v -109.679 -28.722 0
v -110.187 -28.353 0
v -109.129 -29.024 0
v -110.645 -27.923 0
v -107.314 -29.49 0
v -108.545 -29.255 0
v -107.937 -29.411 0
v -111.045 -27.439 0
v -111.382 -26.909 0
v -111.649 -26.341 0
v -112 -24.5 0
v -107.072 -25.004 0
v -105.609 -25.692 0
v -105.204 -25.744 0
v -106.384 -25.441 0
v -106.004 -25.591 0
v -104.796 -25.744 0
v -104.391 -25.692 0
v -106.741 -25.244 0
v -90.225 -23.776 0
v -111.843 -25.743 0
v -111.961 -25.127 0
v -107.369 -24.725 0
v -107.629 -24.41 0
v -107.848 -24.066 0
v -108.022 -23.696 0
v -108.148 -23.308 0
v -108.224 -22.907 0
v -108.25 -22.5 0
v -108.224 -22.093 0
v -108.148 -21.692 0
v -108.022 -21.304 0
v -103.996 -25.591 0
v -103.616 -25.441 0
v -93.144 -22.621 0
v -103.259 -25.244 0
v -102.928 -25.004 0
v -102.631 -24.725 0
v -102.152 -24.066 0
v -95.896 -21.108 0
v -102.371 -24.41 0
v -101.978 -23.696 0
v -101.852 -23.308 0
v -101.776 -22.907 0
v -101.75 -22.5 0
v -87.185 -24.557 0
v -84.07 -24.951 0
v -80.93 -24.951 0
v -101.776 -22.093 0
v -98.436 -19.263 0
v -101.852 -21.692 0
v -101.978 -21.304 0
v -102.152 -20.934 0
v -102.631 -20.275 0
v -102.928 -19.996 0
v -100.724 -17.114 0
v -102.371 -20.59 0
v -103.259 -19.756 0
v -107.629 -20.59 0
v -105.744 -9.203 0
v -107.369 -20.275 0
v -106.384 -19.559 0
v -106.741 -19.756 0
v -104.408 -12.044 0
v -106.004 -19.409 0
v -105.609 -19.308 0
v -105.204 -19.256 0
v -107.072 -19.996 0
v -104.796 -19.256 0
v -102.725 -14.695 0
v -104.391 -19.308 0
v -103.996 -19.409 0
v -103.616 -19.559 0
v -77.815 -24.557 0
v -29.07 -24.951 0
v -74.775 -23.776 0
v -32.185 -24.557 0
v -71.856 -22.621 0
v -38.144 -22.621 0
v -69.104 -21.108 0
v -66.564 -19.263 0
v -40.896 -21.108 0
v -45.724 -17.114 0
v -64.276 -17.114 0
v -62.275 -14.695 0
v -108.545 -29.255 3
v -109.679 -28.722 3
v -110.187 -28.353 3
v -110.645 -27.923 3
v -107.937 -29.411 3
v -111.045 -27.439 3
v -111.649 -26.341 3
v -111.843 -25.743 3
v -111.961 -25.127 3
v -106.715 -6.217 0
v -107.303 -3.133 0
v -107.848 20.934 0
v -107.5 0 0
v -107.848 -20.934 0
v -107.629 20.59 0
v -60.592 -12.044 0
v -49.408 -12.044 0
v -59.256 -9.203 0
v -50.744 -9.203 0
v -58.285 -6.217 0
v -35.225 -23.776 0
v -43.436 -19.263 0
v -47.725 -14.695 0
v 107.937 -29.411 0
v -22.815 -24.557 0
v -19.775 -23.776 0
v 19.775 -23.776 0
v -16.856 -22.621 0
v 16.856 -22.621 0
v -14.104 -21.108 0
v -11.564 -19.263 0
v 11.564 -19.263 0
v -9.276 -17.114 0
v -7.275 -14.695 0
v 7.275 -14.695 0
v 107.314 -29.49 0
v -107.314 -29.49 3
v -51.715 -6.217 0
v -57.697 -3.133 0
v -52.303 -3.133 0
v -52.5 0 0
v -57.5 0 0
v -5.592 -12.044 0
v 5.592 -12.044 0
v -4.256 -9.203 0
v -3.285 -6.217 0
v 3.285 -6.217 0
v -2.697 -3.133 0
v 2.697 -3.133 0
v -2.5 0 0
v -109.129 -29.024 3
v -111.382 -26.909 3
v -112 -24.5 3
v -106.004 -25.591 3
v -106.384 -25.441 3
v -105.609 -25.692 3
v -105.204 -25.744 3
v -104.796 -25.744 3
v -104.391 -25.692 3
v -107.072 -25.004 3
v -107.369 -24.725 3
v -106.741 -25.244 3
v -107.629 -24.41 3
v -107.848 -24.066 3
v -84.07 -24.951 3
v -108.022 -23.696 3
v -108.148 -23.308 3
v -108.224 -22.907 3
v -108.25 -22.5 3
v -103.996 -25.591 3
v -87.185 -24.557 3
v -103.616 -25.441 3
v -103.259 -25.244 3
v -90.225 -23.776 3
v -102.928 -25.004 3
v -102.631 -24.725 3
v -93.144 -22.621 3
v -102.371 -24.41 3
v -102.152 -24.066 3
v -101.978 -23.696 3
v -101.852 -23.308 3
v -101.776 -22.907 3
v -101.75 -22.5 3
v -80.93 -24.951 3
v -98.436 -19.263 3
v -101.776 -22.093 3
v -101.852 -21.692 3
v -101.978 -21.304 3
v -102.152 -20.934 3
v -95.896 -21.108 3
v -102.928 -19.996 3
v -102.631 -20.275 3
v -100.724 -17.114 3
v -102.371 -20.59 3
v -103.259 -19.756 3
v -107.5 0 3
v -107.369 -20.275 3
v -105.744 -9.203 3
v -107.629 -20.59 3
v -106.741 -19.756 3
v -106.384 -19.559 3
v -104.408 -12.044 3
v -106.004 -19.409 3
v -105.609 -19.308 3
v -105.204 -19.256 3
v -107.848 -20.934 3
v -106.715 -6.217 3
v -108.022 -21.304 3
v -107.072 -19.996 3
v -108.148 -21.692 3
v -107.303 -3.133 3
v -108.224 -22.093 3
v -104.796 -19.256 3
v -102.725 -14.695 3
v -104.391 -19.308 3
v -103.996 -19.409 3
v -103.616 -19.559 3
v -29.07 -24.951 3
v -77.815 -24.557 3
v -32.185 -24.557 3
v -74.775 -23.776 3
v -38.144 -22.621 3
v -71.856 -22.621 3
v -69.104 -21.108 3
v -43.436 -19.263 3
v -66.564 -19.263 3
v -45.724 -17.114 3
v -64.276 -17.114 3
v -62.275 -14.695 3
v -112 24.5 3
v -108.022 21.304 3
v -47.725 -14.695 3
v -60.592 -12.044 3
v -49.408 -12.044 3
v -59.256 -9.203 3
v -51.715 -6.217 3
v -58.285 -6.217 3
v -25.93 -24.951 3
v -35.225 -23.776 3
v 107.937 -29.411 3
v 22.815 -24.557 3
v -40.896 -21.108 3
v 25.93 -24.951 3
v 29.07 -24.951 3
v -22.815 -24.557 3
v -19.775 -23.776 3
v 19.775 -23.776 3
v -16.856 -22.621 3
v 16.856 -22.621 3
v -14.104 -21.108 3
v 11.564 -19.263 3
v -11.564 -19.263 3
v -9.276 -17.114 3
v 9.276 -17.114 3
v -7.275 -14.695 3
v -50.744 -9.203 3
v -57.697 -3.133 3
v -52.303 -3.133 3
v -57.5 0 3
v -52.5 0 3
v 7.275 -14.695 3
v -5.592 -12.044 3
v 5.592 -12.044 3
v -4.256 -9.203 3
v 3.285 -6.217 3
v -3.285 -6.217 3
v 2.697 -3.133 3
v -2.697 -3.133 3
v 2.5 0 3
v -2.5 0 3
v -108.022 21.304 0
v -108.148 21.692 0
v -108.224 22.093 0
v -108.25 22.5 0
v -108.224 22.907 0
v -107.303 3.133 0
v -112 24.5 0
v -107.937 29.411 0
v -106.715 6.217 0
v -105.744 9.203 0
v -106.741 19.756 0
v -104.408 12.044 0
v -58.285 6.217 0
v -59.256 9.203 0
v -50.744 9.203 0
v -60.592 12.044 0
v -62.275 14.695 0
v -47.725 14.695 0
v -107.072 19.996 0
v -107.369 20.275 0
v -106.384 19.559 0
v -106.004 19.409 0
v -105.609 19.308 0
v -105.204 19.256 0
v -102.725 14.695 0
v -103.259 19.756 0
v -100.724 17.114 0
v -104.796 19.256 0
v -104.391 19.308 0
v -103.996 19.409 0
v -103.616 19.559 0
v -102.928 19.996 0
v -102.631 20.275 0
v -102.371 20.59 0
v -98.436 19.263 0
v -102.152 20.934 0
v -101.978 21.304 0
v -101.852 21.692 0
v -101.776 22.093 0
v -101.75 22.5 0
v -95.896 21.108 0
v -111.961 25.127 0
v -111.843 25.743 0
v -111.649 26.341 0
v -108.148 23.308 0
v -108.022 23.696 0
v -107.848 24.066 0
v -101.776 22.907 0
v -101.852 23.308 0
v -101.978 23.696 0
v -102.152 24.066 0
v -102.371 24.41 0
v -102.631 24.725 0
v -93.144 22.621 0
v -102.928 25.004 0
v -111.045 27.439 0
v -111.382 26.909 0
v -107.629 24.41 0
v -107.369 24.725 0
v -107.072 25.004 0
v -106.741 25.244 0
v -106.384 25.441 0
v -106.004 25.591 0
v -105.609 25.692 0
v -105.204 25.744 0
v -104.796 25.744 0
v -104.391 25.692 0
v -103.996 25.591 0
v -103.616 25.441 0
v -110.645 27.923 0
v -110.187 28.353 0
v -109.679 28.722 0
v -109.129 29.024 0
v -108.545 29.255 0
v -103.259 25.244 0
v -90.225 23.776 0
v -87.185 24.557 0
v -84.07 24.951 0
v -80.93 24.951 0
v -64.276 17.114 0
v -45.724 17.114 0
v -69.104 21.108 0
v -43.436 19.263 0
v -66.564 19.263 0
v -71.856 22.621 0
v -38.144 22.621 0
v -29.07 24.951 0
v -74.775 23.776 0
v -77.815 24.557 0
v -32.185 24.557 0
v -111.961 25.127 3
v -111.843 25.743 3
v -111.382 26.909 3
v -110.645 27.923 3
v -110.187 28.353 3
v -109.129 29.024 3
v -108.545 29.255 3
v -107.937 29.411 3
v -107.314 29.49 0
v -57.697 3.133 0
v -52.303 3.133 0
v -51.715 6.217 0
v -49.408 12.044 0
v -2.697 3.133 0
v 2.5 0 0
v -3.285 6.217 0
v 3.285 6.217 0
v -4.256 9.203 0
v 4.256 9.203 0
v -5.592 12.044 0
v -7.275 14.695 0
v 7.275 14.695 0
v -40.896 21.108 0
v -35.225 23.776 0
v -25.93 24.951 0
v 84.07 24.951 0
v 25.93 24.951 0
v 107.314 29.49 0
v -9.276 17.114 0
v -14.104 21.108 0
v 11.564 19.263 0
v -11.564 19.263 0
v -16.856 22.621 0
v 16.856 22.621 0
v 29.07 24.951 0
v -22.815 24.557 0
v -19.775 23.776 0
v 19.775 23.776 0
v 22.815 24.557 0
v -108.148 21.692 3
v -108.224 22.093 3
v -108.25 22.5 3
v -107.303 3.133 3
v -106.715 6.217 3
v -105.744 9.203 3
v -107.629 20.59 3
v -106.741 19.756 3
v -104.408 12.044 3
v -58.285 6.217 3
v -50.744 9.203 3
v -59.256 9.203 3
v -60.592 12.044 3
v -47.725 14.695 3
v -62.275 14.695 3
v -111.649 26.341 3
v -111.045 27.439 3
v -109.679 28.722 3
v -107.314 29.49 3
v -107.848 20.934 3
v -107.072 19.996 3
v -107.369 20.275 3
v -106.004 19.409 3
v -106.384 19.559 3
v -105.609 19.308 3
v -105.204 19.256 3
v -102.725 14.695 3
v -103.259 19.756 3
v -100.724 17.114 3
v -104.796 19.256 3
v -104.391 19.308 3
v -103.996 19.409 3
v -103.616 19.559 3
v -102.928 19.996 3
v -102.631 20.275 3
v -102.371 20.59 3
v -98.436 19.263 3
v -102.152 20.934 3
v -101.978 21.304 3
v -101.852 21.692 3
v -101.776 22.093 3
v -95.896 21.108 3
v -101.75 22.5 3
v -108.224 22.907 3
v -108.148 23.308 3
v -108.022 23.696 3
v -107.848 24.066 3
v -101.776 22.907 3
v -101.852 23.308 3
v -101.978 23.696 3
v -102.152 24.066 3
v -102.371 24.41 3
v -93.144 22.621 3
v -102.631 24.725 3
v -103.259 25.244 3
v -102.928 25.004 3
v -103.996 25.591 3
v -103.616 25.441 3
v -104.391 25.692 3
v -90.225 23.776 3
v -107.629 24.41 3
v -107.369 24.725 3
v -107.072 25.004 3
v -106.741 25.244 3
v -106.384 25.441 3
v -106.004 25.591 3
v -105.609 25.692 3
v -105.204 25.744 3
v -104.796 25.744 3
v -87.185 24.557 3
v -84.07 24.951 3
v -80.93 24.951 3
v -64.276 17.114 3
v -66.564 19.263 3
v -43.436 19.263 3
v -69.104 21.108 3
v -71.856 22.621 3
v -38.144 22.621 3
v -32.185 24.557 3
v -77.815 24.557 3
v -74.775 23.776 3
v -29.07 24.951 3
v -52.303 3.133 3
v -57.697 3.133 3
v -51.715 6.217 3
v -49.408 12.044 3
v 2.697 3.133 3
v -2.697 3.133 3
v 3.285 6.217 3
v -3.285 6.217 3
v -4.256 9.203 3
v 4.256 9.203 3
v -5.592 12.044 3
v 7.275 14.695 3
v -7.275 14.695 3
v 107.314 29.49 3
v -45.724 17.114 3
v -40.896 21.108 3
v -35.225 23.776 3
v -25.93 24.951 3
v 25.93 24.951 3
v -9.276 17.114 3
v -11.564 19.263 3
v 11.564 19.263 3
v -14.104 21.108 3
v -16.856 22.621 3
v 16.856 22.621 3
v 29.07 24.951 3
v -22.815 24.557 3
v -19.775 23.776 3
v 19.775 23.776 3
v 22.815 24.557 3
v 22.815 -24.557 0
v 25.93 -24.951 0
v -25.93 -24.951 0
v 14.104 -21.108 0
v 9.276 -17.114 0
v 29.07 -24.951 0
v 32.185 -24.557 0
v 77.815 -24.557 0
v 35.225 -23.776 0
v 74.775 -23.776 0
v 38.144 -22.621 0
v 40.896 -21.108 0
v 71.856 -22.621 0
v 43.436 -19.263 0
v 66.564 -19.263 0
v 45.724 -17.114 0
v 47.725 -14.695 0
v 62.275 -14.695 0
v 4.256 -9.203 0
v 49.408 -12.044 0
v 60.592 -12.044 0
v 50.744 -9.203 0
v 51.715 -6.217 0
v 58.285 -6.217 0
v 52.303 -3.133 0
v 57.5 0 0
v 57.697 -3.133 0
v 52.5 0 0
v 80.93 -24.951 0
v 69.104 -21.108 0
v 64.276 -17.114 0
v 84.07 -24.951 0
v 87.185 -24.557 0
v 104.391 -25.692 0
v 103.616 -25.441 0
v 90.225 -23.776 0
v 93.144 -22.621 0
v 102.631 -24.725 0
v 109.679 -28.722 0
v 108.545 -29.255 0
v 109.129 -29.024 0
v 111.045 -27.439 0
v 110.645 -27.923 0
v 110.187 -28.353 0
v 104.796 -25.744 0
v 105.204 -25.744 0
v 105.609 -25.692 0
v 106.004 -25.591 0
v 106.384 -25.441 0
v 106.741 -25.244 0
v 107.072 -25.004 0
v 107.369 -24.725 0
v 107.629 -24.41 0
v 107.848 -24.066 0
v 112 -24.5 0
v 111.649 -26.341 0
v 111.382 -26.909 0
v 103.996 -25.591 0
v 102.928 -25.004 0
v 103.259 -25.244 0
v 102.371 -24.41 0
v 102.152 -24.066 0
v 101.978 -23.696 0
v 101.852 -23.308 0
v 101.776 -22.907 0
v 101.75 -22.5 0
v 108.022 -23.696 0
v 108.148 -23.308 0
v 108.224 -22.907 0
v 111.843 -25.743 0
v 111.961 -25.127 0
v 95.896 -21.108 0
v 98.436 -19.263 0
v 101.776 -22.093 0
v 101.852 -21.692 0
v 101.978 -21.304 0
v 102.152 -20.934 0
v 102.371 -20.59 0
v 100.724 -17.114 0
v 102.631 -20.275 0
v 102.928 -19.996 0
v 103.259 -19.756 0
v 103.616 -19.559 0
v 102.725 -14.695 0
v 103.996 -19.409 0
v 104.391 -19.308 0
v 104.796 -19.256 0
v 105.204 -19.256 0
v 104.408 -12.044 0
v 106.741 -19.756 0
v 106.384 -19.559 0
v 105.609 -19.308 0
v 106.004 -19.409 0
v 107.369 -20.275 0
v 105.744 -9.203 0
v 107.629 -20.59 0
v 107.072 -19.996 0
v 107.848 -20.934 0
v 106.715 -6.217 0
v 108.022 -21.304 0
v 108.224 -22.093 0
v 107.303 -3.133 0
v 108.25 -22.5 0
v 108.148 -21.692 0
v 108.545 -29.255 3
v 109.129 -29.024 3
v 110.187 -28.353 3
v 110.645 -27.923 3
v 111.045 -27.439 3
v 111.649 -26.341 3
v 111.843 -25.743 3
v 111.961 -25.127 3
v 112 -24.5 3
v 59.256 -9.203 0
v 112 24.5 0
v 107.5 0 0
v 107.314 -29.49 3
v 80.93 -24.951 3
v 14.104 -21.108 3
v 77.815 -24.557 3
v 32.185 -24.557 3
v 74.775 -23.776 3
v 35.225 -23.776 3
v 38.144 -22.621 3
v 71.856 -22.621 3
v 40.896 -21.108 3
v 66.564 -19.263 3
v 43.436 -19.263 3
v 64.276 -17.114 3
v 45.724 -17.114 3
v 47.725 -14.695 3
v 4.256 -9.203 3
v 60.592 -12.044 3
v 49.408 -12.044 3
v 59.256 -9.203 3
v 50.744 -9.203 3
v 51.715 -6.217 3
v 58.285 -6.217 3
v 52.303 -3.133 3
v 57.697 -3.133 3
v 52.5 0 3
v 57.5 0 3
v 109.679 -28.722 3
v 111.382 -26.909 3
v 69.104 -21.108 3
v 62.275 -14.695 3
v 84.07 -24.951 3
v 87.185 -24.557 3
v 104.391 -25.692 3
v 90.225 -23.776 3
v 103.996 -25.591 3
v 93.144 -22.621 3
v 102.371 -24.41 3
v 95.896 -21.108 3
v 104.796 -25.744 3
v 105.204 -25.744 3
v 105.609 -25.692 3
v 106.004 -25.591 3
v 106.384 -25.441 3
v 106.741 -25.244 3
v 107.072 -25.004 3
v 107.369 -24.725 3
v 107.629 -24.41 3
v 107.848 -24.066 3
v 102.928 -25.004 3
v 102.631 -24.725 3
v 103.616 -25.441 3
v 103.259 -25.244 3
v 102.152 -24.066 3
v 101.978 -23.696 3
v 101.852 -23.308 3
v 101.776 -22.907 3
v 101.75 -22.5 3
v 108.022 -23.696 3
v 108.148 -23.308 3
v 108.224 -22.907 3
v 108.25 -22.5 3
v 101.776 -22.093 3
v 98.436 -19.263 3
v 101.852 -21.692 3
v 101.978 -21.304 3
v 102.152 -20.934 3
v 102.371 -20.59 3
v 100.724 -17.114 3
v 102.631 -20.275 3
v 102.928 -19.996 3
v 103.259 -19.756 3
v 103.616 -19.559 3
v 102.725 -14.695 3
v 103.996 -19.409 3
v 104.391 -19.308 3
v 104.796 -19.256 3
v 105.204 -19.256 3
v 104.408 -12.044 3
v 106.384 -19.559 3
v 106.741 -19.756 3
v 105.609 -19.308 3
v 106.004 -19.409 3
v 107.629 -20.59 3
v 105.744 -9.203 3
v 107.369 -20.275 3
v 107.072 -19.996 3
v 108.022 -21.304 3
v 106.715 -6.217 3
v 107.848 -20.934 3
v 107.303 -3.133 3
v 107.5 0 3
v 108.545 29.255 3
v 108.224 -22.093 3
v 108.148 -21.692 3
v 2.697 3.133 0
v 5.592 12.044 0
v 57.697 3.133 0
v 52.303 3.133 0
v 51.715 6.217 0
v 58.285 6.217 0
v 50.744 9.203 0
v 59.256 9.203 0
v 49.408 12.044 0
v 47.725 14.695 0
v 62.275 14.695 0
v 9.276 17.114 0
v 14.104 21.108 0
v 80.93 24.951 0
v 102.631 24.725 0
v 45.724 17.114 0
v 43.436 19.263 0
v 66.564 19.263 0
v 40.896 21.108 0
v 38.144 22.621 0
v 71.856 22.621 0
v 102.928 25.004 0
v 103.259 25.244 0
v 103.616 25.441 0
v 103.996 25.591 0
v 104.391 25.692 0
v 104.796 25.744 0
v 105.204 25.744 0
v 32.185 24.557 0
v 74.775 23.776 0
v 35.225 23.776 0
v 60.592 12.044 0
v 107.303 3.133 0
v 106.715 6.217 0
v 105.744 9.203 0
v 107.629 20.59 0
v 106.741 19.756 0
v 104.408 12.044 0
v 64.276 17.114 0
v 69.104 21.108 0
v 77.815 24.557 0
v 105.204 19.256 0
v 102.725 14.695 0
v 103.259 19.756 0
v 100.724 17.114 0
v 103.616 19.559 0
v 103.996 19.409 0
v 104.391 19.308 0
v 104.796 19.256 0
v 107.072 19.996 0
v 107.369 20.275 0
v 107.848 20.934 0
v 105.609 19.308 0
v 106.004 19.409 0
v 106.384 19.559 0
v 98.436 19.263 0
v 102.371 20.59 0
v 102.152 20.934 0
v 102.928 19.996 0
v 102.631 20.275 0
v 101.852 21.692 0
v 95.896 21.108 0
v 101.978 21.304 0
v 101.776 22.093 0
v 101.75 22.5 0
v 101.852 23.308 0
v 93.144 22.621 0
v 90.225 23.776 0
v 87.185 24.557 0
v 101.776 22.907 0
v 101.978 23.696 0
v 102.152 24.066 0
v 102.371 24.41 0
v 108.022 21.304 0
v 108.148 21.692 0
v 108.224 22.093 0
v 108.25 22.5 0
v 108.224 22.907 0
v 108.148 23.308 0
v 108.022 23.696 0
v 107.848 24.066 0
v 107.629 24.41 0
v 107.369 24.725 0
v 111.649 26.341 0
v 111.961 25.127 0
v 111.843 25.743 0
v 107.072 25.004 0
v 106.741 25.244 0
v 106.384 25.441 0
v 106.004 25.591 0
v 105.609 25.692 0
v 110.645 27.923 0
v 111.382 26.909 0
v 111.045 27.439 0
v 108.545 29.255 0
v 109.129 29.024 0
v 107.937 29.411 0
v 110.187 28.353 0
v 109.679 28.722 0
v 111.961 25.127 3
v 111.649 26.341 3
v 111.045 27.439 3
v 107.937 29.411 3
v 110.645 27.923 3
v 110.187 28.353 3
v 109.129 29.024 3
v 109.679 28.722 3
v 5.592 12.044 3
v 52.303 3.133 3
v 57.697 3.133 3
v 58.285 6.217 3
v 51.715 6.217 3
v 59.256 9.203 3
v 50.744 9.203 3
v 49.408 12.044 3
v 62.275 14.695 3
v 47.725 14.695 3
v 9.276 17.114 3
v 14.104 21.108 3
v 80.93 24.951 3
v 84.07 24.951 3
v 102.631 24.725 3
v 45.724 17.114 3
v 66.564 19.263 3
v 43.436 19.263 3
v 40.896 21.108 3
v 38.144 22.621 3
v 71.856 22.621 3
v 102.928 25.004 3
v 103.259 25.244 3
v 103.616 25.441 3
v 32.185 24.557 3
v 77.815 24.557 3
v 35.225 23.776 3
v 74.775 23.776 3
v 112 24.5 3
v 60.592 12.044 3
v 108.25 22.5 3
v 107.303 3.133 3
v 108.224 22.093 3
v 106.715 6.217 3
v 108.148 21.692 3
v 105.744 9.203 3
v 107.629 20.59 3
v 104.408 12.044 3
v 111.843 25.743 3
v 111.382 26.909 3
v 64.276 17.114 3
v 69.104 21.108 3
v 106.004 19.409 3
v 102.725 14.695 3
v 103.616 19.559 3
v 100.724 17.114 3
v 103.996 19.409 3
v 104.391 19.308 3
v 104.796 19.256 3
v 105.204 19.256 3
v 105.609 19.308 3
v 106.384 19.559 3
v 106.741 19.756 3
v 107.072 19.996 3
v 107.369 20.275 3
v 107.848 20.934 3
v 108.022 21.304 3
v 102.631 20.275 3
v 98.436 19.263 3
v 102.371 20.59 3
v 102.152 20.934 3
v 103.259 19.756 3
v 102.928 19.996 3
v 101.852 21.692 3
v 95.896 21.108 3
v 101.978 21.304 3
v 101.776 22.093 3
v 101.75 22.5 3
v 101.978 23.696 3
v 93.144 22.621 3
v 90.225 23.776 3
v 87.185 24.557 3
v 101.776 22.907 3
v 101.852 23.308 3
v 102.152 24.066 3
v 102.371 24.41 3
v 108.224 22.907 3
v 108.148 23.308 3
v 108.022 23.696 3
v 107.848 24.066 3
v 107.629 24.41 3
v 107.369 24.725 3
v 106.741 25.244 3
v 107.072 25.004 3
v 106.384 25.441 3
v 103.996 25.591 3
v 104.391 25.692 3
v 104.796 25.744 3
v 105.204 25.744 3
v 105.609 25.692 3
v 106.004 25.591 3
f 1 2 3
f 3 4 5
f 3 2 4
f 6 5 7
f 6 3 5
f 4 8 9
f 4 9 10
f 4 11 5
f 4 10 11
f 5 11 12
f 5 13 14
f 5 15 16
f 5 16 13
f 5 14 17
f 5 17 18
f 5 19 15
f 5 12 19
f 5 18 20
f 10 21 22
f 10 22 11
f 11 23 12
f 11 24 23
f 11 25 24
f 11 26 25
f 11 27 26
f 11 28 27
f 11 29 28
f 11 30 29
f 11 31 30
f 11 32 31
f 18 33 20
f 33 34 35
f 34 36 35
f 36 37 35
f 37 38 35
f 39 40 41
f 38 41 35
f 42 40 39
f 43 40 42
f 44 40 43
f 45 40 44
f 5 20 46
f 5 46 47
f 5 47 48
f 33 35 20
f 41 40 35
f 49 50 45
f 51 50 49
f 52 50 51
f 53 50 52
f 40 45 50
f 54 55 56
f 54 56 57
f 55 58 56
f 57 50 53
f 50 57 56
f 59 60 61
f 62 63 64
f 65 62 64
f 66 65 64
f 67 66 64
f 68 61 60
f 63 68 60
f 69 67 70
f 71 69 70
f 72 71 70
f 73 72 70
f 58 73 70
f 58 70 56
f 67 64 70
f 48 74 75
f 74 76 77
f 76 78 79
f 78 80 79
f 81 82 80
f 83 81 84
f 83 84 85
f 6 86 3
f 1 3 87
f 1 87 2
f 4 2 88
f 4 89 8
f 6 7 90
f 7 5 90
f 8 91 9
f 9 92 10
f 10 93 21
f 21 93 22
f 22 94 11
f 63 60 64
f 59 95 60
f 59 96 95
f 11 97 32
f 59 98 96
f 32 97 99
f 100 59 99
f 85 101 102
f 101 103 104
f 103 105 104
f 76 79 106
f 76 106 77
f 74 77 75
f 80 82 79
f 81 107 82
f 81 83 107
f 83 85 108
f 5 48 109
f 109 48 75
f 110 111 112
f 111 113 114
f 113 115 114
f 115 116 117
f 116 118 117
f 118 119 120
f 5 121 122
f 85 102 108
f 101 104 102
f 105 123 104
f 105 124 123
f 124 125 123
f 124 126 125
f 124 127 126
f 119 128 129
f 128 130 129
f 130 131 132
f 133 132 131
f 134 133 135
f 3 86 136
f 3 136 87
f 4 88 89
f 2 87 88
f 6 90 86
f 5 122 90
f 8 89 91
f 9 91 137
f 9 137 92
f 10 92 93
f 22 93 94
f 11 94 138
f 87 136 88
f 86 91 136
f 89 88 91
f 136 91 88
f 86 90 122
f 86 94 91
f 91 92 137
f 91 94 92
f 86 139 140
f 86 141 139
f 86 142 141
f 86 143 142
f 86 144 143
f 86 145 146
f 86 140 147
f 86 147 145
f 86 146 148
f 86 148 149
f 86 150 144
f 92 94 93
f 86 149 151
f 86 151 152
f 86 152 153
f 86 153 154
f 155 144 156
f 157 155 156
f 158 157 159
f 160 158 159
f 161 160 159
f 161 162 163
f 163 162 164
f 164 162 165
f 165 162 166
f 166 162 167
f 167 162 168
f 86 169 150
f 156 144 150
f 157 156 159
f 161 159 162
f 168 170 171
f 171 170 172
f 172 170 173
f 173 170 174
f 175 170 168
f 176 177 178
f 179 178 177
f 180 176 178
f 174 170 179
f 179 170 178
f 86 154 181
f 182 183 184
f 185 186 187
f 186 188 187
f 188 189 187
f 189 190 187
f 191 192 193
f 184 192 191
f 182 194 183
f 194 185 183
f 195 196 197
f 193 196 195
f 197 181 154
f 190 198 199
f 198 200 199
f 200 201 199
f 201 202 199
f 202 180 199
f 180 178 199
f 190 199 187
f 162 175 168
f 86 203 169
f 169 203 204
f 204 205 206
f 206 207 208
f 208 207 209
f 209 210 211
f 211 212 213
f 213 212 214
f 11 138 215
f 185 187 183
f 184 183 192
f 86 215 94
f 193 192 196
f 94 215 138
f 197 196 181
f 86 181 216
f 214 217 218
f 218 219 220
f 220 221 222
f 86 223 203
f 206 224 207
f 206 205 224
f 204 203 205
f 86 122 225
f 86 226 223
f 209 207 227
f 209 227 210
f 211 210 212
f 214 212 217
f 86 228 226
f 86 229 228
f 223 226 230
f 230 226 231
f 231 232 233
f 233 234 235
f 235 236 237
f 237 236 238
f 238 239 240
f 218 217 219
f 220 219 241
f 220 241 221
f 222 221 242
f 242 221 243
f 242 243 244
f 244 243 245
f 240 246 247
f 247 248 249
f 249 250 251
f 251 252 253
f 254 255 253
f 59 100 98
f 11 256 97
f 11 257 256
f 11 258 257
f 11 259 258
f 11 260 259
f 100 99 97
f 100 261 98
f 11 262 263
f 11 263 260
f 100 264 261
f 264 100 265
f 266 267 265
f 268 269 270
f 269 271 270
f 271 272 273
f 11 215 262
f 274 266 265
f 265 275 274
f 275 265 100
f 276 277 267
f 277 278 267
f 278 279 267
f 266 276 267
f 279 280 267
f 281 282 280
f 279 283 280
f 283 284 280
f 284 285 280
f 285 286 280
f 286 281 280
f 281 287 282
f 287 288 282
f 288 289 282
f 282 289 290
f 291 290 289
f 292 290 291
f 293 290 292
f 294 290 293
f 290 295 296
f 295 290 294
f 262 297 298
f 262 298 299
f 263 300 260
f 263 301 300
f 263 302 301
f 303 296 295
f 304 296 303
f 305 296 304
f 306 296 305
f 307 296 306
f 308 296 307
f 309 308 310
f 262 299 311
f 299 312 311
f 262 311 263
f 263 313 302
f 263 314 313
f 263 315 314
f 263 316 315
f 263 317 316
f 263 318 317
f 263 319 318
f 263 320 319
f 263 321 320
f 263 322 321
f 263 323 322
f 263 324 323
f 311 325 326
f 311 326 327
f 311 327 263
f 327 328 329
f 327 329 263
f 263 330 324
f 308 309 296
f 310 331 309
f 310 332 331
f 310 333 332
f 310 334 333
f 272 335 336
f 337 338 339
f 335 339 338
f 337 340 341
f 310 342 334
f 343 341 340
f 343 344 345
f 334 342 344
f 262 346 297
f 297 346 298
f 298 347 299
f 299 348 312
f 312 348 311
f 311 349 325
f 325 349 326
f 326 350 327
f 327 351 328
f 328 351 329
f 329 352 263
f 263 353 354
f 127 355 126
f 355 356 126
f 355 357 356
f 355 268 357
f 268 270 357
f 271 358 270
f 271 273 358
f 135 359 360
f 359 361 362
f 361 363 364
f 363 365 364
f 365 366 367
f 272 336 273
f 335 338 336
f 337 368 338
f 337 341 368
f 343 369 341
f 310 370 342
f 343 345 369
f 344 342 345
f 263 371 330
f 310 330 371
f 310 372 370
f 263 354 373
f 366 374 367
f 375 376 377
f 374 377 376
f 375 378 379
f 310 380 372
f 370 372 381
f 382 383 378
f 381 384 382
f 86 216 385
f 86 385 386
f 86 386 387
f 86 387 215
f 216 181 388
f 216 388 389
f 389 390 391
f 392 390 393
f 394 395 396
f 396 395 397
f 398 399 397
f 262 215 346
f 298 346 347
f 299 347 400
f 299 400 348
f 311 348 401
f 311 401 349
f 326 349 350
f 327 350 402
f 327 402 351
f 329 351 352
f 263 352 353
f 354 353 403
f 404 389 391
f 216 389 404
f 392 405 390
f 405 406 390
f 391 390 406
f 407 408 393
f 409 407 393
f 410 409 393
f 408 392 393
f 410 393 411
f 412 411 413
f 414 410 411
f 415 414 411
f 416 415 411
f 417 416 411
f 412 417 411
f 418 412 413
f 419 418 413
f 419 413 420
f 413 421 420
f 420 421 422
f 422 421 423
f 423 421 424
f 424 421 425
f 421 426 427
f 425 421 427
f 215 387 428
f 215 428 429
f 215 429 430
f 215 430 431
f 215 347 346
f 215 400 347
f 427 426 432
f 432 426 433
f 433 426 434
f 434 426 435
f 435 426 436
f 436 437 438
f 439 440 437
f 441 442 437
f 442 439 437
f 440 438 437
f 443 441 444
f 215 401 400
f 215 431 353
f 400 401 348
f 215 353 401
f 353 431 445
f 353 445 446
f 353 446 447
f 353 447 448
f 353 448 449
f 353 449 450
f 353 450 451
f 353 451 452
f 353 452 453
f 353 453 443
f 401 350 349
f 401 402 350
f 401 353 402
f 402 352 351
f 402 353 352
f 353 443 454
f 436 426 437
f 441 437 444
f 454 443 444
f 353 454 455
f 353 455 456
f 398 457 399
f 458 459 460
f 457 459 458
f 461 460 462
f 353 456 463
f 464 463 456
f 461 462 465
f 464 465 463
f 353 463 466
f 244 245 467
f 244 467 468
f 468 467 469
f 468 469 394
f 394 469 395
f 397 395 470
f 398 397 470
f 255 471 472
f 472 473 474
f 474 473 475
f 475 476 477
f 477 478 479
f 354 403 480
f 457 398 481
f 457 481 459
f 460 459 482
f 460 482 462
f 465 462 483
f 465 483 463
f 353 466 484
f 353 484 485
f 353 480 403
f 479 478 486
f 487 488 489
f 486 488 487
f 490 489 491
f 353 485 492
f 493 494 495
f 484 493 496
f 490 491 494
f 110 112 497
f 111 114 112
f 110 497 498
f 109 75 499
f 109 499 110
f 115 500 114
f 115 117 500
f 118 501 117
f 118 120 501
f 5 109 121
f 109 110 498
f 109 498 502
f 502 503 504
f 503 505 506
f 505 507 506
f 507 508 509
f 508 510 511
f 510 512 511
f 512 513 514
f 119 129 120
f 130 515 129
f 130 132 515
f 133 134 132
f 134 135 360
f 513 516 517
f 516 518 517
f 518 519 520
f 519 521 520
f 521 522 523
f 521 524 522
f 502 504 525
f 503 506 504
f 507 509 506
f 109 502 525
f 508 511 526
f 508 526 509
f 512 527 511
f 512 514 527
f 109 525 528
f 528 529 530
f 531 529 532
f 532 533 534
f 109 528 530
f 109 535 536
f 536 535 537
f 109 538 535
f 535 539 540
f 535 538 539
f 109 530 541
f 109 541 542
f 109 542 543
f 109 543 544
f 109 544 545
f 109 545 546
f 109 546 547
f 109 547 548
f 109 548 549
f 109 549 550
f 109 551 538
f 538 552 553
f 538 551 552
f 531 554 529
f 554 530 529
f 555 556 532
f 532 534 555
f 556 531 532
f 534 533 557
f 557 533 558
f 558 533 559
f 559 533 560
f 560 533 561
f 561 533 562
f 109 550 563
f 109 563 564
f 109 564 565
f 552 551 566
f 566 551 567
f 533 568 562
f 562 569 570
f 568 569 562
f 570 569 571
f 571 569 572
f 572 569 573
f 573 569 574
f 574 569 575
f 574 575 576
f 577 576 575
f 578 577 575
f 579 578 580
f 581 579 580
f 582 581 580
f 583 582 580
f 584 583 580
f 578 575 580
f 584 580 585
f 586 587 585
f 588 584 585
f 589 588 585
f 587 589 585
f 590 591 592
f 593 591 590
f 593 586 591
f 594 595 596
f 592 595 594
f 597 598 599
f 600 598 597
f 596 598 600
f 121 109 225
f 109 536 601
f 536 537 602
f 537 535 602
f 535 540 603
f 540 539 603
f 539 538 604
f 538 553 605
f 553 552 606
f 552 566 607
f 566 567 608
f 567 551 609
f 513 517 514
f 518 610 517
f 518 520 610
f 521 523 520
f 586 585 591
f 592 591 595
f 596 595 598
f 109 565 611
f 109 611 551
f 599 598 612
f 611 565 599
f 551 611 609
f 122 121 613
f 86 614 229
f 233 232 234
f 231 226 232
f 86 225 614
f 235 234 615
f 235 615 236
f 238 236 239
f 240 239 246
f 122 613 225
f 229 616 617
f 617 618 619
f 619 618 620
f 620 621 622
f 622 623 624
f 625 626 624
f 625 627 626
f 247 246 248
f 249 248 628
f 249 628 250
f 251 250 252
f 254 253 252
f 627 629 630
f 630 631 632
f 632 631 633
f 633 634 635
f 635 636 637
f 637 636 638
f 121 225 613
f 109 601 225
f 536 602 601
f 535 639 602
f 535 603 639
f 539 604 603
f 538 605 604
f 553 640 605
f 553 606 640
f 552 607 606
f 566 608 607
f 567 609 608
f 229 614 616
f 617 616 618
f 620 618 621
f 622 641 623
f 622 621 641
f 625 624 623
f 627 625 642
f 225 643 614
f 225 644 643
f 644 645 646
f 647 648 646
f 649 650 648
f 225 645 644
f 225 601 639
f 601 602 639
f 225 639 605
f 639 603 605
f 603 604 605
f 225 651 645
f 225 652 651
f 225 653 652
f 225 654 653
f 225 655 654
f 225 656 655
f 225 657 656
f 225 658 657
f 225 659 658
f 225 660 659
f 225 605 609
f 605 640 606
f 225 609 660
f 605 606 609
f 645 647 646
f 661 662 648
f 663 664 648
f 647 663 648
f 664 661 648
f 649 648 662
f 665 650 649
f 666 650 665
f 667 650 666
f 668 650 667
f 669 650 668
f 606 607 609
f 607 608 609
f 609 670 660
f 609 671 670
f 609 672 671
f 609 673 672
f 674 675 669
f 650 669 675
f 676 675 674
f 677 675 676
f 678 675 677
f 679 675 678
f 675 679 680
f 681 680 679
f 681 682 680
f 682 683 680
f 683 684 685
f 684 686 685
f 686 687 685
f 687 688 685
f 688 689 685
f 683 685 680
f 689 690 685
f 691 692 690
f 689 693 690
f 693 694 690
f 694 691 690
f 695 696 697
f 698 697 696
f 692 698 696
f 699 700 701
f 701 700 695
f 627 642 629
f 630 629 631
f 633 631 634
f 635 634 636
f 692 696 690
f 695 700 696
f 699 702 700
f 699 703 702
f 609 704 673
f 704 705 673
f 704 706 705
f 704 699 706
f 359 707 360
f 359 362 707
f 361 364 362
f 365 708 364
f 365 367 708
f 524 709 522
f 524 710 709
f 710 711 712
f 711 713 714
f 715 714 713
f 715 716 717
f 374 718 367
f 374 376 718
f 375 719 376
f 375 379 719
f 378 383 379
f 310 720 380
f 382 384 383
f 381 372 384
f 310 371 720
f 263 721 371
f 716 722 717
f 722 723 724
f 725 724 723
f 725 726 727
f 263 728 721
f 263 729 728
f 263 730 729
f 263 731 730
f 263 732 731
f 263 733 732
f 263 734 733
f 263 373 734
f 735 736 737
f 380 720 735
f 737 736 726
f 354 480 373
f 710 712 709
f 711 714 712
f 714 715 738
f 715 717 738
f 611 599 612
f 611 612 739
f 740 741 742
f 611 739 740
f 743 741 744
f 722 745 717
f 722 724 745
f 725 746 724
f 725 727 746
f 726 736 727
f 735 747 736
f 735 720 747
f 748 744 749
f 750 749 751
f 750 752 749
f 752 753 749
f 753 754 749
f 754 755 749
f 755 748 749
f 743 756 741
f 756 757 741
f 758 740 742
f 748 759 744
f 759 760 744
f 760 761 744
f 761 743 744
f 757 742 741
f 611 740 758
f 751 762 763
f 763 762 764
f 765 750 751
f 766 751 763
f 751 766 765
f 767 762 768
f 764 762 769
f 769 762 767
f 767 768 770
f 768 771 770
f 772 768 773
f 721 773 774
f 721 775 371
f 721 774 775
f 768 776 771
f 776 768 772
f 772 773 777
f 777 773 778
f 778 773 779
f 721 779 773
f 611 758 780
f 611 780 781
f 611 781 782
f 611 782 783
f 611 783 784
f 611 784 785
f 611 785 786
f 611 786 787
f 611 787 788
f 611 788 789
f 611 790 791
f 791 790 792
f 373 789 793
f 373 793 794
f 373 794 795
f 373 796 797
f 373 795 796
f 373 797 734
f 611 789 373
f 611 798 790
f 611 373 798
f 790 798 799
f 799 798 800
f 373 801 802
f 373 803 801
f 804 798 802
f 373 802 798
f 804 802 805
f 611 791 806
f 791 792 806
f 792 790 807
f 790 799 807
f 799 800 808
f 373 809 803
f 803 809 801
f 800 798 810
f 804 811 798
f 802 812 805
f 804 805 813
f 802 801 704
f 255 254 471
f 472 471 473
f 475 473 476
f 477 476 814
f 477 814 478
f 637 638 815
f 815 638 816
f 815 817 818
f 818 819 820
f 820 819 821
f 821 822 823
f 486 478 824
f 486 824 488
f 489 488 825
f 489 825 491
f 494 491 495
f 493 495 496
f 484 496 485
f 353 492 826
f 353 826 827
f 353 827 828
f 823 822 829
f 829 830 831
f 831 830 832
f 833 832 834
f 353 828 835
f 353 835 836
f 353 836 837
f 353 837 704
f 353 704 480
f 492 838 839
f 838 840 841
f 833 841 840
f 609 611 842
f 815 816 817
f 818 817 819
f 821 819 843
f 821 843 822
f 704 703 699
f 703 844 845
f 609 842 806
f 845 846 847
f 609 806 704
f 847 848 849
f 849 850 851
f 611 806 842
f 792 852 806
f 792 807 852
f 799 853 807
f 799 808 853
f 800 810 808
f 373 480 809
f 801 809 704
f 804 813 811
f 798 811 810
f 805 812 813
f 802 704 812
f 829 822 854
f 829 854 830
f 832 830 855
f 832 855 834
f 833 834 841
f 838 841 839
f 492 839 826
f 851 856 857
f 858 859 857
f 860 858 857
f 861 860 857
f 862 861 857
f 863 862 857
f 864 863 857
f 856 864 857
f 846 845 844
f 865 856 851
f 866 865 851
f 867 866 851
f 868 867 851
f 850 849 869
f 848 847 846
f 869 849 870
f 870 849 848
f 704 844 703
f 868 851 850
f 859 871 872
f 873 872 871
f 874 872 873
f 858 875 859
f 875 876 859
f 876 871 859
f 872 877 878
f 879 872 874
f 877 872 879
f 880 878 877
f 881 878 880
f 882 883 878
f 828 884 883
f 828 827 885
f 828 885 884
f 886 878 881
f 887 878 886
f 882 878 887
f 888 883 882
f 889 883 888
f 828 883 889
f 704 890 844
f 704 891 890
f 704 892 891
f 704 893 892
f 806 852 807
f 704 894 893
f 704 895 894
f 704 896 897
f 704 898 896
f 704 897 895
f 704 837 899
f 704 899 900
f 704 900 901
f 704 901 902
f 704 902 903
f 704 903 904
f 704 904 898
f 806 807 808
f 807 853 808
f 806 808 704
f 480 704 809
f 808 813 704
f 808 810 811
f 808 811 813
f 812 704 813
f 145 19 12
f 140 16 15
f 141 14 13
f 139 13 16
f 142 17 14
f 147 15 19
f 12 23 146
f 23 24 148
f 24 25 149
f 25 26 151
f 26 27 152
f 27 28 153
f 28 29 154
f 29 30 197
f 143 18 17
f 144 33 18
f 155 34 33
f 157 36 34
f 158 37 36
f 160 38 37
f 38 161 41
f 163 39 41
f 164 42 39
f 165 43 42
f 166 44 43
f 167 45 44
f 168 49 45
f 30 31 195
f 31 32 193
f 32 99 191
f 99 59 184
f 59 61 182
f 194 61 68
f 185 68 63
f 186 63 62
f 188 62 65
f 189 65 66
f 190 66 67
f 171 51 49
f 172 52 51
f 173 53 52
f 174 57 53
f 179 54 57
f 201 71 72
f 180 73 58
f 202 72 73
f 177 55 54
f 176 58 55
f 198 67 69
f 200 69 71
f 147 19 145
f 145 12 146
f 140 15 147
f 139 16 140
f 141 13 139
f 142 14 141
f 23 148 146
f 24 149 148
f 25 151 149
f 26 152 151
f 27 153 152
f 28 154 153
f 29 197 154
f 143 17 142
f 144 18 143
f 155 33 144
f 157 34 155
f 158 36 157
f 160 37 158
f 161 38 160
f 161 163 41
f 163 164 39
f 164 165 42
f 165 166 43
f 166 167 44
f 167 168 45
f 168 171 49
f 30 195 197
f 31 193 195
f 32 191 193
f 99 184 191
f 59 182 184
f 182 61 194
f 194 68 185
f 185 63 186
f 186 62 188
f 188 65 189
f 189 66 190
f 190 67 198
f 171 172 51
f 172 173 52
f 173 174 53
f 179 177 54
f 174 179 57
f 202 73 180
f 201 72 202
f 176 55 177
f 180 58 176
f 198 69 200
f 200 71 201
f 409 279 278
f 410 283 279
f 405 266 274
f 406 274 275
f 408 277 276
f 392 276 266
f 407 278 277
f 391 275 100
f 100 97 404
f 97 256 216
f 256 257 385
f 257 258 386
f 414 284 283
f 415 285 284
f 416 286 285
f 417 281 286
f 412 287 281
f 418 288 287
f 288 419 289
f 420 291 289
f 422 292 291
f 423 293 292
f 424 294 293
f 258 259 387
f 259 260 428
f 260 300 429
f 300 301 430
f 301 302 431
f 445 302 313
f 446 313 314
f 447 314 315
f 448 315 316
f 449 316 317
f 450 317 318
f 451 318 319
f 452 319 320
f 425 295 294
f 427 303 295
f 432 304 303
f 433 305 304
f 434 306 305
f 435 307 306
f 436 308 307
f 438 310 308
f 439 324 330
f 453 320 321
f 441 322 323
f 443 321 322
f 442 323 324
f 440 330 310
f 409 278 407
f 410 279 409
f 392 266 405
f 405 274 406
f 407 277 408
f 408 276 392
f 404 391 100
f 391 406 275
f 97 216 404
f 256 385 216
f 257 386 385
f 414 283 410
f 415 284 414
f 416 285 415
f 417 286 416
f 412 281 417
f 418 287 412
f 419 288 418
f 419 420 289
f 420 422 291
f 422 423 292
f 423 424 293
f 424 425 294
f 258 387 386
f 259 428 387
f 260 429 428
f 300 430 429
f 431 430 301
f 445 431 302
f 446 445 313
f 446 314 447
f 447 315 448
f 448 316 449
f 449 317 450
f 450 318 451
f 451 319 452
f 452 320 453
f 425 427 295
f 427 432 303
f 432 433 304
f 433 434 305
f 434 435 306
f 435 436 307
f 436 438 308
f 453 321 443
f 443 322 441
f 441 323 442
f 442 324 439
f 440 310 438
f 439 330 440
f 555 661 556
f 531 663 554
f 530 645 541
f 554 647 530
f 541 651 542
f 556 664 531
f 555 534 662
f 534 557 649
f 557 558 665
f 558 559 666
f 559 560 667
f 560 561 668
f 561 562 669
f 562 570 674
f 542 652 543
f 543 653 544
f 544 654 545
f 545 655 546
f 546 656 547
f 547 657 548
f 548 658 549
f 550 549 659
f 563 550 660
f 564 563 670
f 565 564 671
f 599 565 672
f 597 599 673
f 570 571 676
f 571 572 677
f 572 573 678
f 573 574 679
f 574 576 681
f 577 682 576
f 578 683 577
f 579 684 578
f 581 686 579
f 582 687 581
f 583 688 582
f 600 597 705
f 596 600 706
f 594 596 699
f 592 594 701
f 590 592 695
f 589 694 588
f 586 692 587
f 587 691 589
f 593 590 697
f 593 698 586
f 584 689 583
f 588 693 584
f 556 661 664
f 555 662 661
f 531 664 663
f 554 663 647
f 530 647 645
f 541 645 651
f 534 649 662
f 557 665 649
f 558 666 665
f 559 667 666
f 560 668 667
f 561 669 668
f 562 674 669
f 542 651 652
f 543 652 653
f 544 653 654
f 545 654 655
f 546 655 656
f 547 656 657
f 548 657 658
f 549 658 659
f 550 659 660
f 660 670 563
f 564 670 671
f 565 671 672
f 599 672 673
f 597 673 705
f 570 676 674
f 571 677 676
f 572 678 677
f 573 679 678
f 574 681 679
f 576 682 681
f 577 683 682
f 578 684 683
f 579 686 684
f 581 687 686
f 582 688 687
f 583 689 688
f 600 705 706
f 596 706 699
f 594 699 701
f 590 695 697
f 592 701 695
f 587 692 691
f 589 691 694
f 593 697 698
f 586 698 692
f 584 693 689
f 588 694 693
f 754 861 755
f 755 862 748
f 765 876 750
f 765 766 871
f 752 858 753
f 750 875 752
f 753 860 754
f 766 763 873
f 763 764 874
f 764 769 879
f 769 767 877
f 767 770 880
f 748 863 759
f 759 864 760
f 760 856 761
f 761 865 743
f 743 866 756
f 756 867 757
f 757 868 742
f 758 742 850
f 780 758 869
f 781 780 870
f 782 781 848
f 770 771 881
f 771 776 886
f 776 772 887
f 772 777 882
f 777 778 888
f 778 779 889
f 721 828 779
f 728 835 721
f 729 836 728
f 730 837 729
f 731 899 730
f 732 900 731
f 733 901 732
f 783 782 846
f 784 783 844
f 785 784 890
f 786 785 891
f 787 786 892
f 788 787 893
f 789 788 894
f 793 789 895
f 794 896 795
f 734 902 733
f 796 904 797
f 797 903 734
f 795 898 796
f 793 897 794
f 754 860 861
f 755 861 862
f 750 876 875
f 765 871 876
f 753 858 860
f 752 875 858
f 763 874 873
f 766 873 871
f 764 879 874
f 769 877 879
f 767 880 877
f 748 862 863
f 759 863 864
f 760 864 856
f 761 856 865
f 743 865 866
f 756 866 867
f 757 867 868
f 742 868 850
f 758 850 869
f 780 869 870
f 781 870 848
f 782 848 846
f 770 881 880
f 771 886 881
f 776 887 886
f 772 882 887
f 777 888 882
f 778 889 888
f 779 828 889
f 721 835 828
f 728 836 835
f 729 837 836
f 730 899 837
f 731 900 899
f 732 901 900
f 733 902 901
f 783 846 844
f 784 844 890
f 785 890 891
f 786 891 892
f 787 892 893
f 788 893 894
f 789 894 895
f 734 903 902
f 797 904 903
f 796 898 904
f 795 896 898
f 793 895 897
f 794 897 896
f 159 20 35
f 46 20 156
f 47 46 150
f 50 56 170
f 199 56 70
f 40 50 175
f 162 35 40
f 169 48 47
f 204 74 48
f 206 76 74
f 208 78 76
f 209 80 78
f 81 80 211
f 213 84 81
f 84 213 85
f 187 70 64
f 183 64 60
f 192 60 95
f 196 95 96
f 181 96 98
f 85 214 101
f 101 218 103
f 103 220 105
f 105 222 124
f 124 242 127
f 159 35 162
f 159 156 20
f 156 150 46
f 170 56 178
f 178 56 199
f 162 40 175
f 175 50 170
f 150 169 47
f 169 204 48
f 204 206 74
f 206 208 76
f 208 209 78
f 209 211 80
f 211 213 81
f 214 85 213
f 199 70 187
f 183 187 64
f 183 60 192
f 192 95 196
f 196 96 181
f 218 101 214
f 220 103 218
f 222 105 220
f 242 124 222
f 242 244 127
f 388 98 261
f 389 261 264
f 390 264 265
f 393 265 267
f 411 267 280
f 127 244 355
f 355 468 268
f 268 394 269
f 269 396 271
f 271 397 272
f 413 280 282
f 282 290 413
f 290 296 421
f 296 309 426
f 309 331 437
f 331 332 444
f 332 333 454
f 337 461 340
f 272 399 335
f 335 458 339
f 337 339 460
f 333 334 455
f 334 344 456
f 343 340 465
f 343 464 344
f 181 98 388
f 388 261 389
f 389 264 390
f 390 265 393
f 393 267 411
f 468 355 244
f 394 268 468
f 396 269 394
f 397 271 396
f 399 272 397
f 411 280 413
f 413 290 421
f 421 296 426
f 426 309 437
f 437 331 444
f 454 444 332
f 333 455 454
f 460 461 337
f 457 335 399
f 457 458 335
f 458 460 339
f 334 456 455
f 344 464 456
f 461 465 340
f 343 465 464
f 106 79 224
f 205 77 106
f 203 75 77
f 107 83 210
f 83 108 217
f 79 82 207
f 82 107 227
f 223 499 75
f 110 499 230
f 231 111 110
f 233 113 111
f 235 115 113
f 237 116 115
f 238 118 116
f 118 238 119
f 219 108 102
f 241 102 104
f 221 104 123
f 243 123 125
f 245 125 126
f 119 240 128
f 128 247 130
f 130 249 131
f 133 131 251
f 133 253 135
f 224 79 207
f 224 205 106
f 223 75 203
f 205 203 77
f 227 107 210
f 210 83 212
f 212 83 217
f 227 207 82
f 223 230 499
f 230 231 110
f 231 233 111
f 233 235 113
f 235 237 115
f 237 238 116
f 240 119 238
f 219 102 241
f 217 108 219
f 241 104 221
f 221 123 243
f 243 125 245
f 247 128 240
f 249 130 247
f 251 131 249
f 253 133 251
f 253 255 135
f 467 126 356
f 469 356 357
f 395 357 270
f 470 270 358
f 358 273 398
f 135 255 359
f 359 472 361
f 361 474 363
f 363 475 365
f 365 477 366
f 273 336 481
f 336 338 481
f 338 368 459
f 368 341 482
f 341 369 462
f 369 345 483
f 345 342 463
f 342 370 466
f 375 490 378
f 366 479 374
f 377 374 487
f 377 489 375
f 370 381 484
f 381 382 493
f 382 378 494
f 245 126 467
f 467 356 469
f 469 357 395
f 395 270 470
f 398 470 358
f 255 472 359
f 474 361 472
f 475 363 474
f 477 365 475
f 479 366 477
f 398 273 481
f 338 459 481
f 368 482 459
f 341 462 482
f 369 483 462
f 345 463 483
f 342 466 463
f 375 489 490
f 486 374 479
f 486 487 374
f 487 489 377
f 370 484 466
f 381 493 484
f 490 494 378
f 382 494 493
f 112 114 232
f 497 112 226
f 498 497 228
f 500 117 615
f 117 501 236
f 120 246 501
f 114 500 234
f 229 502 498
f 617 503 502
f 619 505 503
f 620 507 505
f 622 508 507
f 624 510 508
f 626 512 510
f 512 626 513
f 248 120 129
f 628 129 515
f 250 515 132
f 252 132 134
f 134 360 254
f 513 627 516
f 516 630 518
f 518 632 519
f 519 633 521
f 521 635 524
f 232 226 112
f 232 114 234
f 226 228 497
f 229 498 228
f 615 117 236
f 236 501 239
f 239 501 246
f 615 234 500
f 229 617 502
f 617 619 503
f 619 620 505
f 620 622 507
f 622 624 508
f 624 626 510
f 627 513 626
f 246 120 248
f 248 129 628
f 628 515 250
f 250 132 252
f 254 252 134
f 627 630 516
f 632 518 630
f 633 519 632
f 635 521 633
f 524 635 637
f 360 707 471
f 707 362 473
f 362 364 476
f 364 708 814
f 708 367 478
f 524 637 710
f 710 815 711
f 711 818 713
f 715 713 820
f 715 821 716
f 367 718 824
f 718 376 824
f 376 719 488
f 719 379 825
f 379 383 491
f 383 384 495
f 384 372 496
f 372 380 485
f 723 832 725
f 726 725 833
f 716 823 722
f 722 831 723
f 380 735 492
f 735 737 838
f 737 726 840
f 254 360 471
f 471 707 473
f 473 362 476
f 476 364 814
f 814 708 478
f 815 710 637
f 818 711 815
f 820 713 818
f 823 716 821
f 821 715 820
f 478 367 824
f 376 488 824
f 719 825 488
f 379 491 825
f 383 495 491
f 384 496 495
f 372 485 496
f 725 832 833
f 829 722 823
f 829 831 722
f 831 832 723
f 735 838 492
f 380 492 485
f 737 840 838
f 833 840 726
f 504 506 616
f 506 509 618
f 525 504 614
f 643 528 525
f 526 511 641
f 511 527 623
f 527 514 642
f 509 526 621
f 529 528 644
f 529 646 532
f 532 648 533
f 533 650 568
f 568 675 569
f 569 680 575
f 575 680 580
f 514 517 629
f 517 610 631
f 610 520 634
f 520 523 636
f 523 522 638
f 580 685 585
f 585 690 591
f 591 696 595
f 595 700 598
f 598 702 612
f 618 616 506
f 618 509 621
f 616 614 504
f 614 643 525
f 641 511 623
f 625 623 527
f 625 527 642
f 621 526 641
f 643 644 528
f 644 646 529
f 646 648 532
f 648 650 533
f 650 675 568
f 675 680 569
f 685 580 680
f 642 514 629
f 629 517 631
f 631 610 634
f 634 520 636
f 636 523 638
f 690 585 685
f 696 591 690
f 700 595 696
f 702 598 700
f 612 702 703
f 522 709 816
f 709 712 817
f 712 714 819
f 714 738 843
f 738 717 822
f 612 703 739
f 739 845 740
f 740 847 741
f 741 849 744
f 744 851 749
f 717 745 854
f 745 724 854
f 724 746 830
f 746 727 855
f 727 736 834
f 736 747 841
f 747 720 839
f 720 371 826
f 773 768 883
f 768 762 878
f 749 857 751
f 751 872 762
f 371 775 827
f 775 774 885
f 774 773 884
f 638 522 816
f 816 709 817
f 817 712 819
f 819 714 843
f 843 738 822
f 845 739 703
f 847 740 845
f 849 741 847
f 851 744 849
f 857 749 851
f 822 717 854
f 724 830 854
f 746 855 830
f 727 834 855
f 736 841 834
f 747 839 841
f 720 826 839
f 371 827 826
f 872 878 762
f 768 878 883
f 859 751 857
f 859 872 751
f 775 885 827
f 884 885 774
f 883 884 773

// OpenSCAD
$fn = 50;

difference() {
	union() {
		hull() {
			translate(v = [-107.0, 24.5, 0]) {
				cylinder(h = 3, r = 5);
			}
			translate(v = [107.0, 24.5, 0]) {
				cylinder(h = 3, r = 5);
			}
			translate(v = [-107.0, -24.5, 0]) {
				cylinder(h = 3, r = 5);
			}
			translate(v = [107.0, -24.5, 0]) {
				cylinder(h = 3, r = 5);
			}
		}
	}
	union() {
		translate(v = [-105.0, -22.5, -100.0]) {
			cylinder(h = 200, r = 3.25);
		}
		translate(v = [-105.0, 22.5, -100.0]) {
			cylinder(h = 200, r = 3.25);
		}
		translate(v = [105.0, -22.5, -100.0]) {
			cylinder(h = 200, r = 3.25);
		}
		translate(v = [105.0, 22.5, -100.0]) {
			cylinder(h = 200, r = 3.25);
		}
		translate(v = [-105.0, -22.5, -100.0]) {
			cylinder(h = 200, r = 1.8);
		}
		translate(v = [-105.0, 22.5, -100.0]) {
			cylinder(h = 200, r = 1.8);
		}
		translate(v = [105.0, -22.5, -100.0]) {
			cylinder(h = 200, r = 1.8);
		}
		translate(v = [105.0, 22.5, -100.0]) {
			cylinder(h = 200, r = 1.8);
		}
		translate(v = [-82.5, 0, 0.0]) {
			cylinder(h = 3, r = 25.0);
		}
		translate(v = [-27.5, 0, 0.0]) {
			cylinder(h = 3, r = 25.0);
		}
		translate(v = [27.5, 0, 0.0]) {
			cylinder(h = 3, r = 25.0);
		}
		translate(v = [82.5, 0, 0.0]) {
			cylinder(h = 3, r = 25.0);
		}
	}
}
